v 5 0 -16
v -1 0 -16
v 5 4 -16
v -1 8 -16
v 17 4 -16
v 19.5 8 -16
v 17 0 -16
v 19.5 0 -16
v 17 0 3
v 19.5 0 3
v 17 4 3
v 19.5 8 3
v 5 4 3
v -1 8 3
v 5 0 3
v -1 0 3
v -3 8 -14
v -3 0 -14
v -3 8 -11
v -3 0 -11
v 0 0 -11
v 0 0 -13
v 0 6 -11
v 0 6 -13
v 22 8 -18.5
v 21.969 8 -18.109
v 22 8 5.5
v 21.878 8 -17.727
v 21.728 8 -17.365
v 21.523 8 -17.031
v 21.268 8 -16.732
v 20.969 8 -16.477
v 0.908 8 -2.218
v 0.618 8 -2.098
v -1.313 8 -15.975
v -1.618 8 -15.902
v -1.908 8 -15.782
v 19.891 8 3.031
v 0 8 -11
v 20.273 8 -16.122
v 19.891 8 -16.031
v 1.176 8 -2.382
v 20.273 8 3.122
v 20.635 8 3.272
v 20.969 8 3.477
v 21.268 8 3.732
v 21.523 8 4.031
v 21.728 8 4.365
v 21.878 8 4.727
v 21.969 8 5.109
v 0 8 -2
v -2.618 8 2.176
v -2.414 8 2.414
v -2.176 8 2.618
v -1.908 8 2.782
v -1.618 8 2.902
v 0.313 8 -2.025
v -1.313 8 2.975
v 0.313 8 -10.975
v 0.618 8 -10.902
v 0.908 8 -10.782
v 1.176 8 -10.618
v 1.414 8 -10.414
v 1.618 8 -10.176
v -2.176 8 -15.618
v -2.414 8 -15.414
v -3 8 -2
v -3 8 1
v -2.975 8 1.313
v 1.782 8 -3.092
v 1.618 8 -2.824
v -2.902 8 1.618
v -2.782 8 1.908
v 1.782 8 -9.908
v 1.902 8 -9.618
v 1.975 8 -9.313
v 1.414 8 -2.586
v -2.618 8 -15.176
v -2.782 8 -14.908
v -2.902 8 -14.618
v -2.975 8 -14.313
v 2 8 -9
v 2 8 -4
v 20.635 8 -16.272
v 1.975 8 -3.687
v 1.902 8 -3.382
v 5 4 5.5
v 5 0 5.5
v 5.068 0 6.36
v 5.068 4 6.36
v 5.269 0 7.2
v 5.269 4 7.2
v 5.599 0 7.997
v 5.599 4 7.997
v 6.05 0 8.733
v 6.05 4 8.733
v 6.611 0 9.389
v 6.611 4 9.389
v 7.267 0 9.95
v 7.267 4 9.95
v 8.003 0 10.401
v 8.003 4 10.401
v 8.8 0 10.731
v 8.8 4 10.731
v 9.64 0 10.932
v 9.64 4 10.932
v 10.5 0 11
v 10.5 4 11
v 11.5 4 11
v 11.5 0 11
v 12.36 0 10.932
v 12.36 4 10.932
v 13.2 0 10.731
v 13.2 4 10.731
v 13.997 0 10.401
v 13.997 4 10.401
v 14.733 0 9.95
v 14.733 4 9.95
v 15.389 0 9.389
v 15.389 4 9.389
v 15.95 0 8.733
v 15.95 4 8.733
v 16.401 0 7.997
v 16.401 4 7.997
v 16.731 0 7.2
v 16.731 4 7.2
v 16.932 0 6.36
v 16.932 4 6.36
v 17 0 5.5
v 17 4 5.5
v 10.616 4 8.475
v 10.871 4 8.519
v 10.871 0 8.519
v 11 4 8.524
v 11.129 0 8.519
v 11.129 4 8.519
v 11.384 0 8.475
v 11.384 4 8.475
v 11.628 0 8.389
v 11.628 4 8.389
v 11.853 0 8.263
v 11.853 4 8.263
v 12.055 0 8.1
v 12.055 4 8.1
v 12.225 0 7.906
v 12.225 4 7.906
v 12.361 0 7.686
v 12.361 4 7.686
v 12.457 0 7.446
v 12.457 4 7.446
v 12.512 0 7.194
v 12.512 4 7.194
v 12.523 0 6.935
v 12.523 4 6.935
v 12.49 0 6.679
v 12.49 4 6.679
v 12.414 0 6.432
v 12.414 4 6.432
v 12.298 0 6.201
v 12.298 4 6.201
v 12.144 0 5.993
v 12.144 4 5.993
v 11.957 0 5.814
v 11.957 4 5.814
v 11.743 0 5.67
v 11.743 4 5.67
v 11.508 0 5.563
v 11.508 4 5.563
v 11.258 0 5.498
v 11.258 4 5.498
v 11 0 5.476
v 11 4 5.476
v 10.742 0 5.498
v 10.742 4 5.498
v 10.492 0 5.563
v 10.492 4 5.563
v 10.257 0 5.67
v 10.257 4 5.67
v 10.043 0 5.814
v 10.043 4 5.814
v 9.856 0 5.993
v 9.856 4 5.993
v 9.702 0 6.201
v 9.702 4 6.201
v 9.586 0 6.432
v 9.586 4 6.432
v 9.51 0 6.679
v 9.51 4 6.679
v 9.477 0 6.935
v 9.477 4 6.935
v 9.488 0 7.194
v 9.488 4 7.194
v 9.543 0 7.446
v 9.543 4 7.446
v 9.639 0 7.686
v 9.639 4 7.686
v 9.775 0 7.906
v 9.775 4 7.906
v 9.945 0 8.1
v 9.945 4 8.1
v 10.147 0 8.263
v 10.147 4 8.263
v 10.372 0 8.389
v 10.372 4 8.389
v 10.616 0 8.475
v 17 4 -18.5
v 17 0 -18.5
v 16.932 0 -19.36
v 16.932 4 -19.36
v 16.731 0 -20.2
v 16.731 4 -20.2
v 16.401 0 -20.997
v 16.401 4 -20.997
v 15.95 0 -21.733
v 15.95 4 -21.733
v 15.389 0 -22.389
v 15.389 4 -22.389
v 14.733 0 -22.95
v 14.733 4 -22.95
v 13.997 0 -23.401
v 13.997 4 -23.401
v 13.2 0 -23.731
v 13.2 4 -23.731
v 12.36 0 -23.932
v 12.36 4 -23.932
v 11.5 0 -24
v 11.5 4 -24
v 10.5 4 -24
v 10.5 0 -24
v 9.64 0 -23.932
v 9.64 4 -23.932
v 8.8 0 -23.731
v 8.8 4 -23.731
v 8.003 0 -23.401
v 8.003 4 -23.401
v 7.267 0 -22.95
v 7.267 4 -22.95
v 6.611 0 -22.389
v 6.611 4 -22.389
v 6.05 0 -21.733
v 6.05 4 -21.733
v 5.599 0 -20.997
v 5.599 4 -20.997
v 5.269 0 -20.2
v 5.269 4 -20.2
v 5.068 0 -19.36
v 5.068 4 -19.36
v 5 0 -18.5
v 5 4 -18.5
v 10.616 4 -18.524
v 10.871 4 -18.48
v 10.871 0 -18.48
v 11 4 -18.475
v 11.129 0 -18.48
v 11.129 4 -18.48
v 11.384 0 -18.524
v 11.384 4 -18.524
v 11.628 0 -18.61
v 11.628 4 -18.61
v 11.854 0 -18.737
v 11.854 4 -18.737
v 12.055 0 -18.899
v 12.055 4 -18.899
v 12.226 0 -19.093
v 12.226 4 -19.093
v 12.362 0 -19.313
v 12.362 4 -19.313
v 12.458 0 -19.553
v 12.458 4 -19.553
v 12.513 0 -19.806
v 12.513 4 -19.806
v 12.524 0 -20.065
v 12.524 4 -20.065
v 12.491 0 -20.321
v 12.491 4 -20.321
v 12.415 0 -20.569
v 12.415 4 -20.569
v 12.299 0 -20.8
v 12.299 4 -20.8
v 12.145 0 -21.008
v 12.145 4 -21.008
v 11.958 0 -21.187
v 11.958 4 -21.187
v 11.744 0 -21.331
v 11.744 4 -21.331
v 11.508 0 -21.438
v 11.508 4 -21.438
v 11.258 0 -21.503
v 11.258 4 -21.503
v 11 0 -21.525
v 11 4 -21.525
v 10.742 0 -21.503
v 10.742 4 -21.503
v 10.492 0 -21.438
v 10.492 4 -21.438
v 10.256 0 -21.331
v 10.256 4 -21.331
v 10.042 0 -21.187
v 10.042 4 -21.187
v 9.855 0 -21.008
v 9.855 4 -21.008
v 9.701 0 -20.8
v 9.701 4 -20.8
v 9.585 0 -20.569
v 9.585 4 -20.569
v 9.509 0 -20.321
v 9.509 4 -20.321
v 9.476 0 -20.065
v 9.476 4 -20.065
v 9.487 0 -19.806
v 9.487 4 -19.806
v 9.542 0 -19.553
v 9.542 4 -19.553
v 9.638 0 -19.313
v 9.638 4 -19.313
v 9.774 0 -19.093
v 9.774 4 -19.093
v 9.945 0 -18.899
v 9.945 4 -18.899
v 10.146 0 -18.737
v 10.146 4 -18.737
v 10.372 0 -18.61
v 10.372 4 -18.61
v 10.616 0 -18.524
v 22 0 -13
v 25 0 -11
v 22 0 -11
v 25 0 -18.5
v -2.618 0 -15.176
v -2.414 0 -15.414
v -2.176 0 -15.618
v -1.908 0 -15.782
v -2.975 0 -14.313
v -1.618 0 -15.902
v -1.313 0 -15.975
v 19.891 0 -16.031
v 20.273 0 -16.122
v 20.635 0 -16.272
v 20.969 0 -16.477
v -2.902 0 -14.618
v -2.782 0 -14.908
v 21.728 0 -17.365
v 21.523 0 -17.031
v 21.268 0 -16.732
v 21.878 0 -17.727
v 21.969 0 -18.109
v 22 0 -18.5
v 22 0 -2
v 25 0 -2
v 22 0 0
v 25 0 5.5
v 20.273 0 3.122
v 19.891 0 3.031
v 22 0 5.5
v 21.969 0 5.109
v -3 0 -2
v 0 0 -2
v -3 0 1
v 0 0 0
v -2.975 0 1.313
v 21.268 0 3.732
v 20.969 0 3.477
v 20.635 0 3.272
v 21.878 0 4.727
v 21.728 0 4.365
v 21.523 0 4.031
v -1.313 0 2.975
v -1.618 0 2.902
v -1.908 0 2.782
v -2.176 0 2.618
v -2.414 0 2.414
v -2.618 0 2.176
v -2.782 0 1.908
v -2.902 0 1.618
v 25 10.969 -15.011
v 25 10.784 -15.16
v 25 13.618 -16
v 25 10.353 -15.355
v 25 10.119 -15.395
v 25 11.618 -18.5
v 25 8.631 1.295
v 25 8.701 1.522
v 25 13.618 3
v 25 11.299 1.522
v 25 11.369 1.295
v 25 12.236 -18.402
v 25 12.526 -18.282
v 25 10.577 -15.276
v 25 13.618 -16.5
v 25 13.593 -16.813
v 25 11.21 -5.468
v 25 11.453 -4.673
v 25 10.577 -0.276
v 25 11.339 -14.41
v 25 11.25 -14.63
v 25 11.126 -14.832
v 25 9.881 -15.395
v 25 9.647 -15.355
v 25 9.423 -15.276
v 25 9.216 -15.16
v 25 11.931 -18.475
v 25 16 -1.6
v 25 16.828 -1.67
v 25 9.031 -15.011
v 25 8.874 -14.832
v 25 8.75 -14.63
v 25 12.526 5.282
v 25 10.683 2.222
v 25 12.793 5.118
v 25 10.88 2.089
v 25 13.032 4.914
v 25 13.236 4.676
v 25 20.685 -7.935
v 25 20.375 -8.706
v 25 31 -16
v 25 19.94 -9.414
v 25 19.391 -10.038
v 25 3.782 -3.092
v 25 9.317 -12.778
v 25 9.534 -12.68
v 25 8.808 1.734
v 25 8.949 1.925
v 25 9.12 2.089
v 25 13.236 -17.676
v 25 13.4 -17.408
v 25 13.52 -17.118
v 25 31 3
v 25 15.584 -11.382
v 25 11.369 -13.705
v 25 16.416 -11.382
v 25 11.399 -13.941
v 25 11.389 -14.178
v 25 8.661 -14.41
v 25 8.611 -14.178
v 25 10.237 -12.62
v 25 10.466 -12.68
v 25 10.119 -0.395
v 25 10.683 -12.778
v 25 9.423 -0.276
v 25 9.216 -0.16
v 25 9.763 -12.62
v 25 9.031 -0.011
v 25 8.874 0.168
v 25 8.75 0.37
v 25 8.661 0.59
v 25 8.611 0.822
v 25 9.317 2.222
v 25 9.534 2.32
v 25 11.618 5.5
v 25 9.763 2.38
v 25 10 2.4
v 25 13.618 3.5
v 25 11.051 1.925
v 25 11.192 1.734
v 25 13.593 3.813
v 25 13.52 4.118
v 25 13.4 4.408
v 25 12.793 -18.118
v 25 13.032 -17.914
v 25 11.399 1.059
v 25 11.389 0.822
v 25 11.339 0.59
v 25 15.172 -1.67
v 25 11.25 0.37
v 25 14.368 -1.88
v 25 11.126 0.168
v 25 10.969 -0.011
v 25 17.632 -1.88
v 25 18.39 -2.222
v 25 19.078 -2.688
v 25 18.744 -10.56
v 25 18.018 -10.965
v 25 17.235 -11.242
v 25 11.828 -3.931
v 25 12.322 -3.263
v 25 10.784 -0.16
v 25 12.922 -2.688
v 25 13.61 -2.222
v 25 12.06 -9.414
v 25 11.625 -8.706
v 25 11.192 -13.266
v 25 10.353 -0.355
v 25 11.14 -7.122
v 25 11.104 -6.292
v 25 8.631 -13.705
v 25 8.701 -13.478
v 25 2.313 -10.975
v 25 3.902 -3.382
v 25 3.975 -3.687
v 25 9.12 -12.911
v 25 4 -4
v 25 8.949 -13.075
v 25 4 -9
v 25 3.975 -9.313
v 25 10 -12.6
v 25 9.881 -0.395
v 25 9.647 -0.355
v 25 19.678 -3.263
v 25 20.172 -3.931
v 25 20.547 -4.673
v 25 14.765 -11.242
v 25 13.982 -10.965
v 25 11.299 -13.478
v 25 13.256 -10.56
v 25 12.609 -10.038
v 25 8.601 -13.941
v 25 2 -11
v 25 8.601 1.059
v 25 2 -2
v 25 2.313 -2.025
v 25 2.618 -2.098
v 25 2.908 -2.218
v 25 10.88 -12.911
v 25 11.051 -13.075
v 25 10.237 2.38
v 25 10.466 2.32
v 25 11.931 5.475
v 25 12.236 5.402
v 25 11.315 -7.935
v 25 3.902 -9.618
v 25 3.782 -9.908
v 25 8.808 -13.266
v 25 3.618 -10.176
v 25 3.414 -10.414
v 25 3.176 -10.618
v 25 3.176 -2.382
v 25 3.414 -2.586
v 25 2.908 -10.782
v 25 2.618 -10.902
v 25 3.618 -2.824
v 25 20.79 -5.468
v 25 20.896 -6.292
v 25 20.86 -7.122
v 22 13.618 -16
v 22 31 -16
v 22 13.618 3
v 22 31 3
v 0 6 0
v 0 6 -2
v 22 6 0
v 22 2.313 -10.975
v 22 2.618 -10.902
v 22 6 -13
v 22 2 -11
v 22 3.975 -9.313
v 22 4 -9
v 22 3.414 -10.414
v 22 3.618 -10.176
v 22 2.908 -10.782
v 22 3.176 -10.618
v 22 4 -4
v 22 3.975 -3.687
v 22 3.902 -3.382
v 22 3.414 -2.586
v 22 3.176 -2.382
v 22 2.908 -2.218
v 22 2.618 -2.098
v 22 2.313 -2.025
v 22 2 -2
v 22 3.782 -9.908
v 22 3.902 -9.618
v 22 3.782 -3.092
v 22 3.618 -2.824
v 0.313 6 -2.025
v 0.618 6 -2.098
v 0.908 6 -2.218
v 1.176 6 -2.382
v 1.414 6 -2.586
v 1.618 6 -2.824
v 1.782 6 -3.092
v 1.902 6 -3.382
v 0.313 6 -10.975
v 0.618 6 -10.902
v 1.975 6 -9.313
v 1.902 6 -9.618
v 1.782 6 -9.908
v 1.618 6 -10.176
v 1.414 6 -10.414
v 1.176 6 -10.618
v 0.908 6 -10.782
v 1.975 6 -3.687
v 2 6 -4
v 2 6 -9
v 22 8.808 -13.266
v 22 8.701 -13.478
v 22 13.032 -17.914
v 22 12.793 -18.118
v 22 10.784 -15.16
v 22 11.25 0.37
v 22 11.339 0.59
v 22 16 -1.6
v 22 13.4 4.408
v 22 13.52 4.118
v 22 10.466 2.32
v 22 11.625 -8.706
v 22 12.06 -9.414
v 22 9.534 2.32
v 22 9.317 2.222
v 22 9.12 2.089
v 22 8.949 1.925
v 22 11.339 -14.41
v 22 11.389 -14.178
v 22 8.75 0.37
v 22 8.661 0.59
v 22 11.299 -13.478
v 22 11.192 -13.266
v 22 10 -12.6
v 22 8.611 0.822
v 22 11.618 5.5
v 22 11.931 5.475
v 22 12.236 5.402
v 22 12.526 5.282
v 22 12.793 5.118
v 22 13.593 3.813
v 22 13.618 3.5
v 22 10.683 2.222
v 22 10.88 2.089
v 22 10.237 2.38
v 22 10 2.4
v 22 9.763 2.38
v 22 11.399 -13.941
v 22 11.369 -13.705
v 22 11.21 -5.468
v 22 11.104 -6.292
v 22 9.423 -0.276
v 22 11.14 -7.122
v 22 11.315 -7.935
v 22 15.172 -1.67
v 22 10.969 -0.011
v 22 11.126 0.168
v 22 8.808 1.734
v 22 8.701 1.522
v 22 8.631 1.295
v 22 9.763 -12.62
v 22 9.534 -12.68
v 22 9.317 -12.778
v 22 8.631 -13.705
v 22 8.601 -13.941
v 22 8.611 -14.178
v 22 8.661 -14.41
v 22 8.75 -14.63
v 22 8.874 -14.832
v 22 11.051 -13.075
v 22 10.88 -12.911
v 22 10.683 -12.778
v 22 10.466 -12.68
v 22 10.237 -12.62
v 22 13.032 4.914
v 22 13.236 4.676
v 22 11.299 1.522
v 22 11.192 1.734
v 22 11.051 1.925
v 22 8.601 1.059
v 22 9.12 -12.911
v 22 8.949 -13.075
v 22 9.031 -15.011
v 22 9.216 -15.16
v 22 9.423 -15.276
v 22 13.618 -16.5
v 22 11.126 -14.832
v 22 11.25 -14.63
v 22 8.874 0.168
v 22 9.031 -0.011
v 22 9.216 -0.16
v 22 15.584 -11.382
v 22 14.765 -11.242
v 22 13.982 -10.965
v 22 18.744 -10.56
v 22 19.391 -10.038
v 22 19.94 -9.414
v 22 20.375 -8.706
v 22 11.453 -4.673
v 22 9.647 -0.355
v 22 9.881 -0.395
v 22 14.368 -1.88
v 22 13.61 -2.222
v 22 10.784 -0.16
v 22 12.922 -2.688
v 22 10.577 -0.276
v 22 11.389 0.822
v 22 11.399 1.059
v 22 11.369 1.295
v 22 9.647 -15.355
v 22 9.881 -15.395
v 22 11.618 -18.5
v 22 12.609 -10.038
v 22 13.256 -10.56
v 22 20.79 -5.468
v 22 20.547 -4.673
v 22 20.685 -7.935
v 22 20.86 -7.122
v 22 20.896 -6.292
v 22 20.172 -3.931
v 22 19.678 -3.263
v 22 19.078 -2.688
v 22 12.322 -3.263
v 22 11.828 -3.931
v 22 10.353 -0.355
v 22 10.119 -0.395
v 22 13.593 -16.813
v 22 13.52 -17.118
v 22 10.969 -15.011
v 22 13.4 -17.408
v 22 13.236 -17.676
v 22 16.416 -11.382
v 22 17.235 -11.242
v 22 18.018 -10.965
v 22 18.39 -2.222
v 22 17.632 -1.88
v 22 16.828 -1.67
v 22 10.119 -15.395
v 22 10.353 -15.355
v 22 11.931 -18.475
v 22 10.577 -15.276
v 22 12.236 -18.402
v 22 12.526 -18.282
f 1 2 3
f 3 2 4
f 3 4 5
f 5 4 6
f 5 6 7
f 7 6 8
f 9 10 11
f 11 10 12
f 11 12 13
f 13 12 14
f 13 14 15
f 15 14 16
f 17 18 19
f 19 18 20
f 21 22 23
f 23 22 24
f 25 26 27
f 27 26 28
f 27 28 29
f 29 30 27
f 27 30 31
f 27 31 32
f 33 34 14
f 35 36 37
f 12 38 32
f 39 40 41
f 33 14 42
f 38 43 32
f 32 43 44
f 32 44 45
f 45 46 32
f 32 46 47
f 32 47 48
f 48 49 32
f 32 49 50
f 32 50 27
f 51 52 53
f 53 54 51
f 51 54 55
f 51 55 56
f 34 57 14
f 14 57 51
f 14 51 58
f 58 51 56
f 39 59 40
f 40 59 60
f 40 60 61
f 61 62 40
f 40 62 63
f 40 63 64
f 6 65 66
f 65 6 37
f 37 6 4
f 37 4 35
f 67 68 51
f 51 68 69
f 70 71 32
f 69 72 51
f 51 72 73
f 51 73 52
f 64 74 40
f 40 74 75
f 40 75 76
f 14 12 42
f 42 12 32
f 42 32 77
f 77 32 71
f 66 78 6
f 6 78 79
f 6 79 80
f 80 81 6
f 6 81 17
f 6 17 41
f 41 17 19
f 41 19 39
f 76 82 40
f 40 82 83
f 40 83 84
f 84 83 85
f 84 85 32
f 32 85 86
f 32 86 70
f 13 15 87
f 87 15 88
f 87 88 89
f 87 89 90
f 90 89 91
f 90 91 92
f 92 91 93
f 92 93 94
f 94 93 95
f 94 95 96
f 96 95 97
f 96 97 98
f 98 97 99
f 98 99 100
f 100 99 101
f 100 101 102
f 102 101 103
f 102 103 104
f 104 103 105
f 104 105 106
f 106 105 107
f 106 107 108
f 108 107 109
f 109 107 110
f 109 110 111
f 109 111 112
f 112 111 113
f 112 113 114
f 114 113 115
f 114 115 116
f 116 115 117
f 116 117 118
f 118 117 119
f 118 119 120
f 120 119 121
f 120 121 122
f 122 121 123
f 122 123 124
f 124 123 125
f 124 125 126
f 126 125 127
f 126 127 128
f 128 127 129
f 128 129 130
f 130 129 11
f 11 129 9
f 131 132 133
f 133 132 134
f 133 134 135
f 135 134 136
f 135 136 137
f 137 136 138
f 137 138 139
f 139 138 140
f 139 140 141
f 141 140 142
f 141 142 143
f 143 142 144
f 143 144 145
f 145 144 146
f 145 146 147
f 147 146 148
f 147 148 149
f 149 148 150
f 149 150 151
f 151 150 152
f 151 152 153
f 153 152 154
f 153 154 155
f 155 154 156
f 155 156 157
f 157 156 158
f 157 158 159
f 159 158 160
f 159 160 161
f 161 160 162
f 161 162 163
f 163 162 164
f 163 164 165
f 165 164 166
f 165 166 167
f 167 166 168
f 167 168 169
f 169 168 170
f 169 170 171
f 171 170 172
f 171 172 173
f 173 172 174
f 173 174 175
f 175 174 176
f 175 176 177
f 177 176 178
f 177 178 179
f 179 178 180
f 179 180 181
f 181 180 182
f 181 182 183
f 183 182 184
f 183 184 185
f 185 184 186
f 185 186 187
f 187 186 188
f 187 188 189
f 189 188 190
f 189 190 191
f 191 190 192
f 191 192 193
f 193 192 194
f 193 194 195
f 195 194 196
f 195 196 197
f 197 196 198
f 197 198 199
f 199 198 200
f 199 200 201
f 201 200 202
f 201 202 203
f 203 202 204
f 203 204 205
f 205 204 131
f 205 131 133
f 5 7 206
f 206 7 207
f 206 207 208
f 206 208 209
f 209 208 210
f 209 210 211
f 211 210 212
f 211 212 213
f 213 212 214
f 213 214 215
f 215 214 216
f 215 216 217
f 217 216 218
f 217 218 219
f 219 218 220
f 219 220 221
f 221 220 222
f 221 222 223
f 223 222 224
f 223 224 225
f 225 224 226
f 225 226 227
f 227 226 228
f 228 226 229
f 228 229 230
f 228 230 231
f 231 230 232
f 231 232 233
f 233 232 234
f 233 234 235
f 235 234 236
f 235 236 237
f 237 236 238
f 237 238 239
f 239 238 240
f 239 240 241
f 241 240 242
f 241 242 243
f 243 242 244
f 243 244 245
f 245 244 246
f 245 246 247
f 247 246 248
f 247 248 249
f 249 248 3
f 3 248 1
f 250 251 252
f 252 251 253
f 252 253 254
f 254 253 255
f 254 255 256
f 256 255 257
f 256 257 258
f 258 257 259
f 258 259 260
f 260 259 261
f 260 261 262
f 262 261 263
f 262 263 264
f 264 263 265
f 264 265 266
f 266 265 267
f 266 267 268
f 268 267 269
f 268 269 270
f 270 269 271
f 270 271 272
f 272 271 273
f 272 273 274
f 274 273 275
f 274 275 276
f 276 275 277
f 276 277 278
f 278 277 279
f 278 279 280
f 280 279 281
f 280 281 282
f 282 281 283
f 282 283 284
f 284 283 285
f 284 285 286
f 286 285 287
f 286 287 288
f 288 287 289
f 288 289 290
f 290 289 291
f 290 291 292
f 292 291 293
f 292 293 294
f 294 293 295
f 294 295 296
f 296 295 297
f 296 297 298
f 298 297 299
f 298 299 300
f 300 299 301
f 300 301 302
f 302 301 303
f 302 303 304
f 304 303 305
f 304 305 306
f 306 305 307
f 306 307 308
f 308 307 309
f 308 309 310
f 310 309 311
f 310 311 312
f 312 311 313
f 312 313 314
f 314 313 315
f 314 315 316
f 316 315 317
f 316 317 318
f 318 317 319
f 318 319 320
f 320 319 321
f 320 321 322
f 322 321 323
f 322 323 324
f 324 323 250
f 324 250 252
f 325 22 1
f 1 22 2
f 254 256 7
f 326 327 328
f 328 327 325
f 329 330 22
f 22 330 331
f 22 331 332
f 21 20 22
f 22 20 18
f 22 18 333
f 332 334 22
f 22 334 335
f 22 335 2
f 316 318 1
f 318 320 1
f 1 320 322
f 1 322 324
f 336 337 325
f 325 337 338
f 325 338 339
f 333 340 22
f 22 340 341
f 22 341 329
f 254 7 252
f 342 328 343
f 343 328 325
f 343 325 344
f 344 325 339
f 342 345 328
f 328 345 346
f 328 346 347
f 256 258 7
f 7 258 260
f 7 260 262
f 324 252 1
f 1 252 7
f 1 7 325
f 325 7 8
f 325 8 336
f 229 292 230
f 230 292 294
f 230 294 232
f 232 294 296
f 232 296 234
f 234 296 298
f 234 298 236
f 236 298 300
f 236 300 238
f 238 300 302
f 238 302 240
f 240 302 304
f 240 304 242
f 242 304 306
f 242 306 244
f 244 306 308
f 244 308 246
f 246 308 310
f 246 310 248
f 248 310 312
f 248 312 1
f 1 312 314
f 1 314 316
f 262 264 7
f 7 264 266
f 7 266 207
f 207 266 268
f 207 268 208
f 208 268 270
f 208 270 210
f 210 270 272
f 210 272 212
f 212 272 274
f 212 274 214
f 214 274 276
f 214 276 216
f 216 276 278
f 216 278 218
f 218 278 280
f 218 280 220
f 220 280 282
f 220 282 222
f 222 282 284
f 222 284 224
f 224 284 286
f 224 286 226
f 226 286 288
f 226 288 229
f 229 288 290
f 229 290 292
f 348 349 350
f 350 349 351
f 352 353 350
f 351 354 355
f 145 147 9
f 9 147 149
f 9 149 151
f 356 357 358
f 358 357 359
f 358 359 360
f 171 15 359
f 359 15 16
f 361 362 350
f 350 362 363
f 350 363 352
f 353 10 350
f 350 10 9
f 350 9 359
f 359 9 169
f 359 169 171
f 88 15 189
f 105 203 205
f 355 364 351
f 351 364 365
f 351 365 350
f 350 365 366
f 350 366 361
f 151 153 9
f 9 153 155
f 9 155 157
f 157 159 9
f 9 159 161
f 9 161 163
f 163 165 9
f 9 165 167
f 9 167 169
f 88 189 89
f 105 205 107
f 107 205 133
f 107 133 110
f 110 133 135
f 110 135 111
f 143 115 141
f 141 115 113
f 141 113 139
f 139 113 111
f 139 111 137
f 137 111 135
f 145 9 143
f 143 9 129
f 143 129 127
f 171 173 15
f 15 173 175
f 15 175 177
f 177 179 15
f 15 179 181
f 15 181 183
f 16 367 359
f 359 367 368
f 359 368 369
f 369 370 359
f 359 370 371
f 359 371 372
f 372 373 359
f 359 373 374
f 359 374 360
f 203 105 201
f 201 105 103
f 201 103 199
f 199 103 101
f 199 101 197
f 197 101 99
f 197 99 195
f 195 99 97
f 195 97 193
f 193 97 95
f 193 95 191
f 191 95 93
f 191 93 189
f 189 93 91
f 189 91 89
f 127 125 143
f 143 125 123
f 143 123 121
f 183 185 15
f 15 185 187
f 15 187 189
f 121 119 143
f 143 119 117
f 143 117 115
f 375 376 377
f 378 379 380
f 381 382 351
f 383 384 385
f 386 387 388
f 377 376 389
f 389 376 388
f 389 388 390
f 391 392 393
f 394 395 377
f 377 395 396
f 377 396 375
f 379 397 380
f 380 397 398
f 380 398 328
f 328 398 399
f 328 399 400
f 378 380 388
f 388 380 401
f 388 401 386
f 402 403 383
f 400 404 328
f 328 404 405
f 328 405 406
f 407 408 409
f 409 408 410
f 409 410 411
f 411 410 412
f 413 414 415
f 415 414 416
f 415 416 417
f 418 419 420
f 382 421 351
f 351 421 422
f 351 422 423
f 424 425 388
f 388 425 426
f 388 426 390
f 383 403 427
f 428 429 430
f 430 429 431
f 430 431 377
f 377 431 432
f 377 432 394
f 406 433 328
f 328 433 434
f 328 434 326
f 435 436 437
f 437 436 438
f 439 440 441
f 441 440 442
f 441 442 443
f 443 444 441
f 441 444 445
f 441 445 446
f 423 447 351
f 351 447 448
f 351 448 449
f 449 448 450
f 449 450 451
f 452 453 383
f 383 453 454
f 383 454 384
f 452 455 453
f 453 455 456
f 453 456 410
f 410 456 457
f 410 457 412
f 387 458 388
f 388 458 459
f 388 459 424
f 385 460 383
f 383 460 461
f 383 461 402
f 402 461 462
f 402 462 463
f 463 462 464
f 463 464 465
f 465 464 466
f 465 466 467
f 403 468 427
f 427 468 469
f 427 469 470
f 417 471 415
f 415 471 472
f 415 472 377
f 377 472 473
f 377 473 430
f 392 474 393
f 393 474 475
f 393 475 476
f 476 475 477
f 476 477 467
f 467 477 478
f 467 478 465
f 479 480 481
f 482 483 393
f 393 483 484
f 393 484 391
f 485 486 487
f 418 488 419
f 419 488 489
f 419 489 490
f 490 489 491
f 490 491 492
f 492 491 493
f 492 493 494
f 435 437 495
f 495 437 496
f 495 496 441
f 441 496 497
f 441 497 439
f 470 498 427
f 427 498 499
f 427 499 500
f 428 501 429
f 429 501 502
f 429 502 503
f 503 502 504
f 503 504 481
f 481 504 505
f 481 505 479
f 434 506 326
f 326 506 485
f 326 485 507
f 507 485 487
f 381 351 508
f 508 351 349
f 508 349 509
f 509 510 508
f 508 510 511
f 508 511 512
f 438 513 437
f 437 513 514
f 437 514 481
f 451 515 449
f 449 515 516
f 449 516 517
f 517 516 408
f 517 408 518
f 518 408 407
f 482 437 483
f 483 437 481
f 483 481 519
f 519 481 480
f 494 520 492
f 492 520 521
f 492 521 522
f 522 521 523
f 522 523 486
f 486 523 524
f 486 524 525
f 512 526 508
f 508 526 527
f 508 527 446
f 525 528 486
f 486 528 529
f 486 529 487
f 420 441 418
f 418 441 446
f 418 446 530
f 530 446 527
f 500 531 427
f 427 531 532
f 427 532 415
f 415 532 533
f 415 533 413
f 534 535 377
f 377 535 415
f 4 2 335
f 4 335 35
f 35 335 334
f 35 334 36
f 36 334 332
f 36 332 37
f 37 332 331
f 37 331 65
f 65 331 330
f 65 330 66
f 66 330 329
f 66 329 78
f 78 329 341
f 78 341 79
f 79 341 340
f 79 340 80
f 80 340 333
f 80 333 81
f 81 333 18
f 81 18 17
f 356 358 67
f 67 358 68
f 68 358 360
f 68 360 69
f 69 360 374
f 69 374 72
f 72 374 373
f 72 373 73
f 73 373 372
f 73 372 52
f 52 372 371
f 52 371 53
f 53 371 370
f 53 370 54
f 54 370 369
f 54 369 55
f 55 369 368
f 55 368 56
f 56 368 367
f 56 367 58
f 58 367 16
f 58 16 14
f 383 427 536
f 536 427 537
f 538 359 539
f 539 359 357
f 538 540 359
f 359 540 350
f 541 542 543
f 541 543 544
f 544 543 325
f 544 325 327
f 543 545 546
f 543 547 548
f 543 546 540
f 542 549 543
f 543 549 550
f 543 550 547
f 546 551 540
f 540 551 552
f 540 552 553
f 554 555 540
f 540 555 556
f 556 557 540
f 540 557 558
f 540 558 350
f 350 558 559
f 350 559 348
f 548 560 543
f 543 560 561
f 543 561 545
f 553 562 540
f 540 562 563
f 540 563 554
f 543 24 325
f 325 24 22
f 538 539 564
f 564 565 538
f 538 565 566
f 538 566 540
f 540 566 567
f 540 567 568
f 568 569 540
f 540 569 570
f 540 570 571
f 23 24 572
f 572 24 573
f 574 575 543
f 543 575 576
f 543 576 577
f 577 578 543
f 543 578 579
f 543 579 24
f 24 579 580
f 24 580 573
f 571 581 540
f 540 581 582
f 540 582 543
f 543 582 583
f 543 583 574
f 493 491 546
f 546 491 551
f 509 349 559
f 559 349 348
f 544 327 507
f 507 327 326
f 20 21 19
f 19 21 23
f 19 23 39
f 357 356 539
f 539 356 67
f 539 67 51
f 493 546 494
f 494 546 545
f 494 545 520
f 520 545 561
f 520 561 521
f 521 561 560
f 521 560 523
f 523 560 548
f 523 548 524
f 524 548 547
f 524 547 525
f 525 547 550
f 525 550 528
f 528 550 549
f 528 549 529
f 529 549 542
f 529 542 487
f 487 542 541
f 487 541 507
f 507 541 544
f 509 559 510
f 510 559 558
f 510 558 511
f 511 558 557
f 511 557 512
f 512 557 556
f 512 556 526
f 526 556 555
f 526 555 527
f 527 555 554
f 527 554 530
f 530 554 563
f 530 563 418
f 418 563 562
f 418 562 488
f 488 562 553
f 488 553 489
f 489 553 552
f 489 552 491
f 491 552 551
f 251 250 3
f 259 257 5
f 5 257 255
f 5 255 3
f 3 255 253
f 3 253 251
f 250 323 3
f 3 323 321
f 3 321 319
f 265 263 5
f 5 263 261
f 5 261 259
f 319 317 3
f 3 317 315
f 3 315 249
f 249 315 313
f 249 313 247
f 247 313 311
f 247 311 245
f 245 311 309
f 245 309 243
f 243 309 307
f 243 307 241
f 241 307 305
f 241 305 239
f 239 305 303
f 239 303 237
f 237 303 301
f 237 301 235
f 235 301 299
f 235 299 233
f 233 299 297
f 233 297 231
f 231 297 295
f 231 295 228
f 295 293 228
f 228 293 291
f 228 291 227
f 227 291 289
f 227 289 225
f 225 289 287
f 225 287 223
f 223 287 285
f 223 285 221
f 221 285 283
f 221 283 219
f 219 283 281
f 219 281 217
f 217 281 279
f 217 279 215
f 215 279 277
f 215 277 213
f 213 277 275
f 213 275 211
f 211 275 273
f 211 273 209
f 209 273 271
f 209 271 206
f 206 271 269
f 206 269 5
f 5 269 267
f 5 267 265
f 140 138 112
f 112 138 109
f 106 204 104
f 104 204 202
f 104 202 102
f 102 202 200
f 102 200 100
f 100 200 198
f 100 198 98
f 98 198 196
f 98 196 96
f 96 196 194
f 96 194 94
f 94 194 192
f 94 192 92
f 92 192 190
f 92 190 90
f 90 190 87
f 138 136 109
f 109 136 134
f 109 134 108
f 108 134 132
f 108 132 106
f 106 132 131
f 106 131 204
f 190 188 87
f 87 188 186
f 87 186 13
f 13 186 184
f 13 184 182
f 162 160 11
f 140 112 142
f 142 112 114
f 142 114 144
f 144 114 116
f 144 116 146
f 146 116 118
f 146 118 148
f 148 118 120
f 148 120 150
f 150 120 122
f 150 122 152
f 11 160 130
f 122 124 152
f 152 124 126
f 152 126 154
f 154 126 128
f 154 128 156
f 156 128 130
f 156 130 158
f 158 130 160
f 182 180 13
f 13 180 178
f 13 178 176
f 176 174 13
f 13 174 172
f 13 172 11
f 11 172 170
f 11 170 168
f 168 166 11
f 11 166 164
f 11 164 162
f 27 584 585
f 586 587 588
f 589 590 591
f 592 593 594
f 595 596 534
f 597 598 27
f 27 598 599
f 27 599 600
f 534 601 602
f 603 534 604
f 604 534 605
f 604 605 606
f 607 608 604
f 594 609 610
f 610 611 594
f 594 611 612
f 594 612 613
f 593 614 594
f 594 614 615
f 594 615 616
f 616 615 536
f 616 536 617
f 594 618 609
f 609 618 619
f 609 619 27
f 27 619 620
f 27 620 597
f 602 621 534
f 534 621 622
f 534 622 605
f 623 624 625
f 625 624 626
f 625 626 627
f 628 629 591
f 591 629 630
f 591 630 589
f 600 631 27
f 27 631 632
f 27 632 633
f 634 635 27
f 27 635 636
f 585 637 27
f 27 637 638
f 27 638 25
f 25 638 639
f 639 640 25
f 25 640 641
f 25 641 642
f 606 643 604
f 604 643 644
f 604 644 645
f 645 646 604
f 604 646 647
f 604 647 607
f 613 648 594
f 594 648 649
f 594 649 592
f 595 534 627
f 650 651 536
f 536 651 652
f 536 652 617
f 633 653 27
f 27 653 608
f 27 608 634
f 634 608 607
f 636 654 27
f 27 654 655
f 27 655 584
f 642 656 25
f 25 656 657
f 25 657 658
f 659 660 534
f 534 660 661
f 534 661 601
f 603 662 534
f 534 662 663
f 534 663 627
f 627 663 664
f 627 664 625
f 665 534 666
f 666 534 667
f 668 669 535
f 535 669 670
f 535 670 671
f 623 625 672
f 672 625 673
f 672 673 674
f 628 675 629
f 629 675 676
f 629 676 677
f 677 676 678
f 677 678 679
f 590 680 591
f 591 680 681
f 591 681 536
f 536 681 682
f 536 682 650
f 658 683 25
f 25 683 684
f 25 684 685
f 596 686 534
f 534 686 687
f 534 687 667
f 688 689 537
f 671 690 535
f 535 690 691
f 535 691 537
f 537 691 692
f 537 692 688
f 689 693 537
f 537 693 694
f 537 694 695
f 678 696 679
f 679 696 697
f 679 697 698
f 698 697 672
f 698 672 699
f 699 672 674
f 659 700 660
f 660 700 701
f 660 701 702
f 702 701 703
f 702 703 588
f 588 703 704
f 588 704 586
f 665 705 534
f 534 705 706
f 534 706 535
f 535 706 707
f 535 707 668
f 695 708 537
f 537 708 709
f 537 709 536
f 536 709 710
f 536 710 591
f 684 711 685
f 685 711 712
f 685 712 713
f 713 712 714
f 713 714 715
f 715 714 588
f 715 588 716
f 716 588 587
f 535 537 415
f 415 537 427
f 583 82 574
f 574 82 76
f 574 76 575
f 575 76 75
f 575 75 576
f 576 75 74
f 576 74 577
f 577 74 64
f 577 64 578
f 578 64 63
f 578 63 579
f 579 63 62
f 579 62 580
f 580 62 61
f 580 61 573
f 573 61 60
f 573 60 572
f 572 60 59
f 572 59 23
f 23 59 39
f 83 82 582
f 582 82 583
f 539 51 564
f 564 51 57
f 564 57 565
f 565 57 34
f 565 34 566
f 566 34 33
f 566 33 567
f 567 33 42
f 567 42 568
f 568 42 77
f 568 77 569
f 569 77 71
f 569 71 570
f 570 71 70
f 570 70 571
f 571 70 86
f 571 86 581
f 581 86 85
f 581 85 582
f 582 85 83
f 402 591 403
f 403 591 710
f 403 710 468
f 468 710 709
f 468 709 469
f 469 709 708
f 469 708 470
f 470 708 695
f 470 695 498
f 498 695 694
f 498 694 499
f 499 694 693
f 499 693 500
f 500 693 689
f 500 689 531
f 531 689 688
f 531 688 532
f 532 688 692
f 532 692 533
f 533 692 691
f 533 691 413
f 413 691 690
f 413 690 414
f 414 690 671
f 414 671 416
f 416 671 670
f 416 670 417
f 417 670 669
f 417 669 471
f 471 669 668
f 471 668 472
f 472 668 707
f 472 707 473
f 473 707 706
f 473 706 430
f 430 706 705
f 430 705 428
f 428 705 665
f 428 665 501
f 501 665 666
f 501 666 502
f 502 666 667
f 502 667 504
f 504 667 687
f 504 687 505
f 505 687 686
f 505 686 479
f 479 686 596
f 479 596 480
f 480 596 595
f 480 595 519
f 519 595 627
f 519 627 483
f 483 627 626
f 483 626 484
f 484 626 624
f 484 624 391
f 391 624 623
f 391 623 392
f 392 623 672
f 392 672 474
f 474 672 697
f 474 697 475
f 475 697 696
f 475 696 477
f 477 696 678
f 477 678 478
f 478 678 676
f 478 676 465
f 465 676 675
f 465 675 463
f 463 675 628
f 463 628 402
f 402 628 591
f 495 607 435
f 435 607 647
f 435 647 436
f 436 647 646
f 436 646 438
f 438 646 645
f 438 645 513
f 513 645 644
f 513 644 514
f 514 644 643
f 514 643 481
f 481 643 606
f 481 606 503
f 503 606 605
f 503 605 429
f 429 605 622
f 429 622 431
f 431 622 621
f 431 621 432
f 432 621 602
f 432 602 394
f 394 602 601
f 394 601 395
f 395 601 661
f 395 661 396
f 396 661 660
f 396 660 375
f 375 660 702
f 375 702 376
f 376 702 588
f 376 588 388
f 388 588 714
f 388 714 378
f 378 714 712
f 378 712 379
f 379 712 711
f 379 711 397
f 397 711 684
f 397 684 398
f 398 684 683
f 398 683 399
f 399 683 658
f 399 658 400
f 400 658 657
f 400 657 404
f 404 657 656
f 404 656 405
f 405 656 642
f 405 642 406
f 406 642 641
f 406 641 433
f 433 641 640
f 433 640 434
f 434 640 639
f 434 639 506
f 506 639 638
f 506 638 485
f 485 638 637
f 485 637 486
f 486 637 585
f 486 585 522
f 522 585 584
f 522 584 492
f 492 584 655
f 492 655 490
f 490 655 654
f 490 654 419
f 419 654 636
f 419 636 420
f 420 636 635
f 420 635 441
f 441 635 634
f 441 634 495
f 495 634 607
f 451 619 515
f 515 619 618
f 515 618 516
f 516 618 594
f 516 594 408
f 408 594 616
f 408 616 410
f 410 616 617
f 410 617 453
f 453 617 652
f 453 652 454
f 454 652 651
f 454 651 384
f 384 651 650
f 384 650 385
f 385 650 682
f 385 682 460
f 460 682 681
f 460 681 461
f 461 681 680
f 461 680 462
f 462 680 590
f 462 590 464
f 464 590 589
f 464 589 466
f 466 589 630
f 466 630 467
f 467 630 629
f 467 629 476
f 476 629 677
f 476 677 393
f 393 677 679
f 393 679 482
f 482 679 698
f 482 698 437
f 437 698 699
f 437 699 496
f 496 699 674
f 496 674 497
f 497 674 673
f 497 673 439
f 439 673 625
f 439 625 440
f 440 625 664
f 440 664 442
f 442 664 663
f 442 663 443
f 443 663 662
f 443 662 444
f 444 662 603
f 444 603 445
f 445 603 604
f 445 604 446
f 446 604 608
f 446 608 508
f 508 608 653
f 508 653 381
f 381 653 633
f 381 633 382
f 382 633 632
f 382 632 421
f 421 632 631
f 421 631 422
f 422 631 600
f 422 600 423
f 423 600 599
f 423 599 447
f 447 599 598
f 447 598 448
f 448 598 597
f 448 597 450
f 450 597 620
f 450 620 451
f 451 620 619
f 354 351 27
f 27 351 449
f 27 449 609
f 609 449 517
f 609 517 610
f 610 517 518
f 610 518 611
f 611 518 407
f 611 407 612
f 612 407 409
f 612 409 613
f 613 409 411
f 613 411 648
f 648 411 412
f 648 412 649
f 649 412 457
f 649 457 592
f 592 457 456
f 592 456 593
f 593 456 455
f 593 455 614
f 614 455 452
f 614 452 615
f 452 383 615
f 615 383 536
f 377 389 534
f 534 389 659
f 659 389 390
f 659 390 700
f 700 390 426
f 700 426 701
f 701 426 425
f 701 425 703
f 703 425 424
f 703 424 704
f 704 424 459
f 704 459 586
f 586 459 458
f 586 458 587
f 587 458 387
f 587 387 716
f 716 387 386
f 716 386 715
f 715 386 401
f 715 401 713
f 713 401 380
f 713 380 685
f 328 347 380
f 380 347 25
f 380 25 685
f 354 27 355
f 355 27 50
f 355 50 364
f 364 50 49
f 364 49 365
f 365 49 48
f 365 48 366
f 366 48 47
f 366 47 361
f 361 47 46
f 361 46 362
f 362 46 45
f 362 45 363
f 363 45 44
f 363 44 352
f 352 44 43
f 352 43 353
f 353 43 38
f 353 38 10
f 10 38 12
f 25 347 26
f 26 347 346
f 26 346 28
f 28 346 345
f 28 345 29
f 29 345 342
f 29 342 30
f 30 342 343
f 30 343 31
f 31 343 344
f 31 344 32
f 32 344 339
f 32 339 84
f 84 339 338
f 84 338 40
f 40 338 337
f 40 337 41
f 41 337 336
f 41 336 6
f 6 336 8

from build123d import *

# Parameters (mm, degrees)
SKETCH1_W           = 22
SKETCH1_H           = 13
BOSS_EXTRUDE1_DEPTH = 6
BOSS_EXTRUDE2_DEPTH = 2
BOSS_EXTRUDE3_DEPTH = 8
SKETCH4_R           = 1.525
SKETCH4_R_2         = 1.524
CUT_EXTRUDE1_DEPTH  = 36.566838488
SKETCH5_W           = 9
SKETCH5_H           = 4
CUT_EXTRUDE2_DEPTH  = 38.735924528
FILLET1_R           = 2
SKETCH6_W           = 12
SKETCH6_H           = 13.009000019
SKETCH6_W_2         = 15.838286437
CUT_EXTRUDE3_DEPTH  = 4
BOSS_EXTRUDE4_DEPTH = 23
CUT_EXTRUDE4_DEPTH  = 23
SKETCH9_R           = 4.9
CUT_EXTRUDE6_DEPTH  = 23
SKETCH10_R          = 1.4
CUT_EXTRUDE7_DEPTH  = 23
BOSS_EXTRUDE5_DEPTH = 3
FILLET2_R           = 2.5
FILLET3_R           = 2.5


with BuildPart() as part:
    # Sketch1 → Boss-Extrude1 (new body)
    with BuildSketch(Plane(origin=(0, 0, 0), x_dir=(1, 0, 0), z_dir=(0, 1, 0))):
        with BuildLine():
            Line((-1, -3), (23, -3))
            Line((23, -3), (25, -3))
            Line((25, -3), (25, -1))
            Line((25, -1), (25, 14))
            Line((25, 14), (25, 16))
            Line((25, 16), (23, 16))
            Line((23, 16), (-1, 16))
            ThreePointArc((-1, 16), (-2.414213562, 15.414213562), (-3, 14))
            Line((-3, 14), (-3, -1))
            ThreePointArc((-3, -1), (-2.414213562, -2.414213562), (-1, -3))
        make_face()
        with Locations((11, 6.5)):
            Rectangle(SKETCH1_W, SKETCH1_H, mode=Mode.SUBTRACT)
    extrude(amount=BOSS_EXTRUDE1_DEPTH)

    # Sketch2 → Boss-Extrude2 (add)
    with BuildSketch(Plane(origin=(0, 6, 0), x_dir=(1, 0, 0), z_dir=(0, 1, 0))):
        with BuildLine():
            Line((25, 14), (25, -1))
            Line((25, -1), (25, -3))
            Line((25, -3), (23, -3))
            Line((23, -3), (-1, -3))
            ThreePointArc((-1, -3), (-2.414213562, -2.414213562), (-3, -1))
            Line((-3, -1), (-3, 14))
            ThreePointArc((-3, 14), (-2.414213562, 15.414213562), (-1, 16))
            Line((-1, 16), (23, 16))
            Line((23, 16), (25, 16))
            Line((25, 16), (25, 14))
        make_face()
    extrude(amount=BOSS_EXTRUDE2_DEPTH)

    # Sketch3 → Boss-Extrude3 (add)
    with BuildSketch(Plane.XZ):
        with BuildLine():
            Line((5, 3), (17, 3))
            Line((17, 3), (17, 5.5))
            ThreePointArc((17, 5.5), (15.389087297, 9.389087297), (11.5, 11))
            Line((11.5, 11), (10.5, 11))
            ThreePointArc((10.5, 11), (6.610912703, 9.389087297), (5, 5.5))
            Line((5, 5.5), (5, 3))
        make_face()
        with BuildLine():
            Line((17, -16), (5, -16))
            Line((5, -16), (5, -18.5))
            ThreePointArc((5, -18.5), (6.610912703, -22.389087297), (10.5, -24))
            Line((10.5, -24), (11.5, -24))
            ThreePointArc((11.5, -24), (15.389087297, -22.389087297), (17, -18.5))
            Line((17, -18.5), (17, -16))
        make_face()
    extrude(amount=-BOSS_EXTRUDE3_DEPTH)

    # Sketch4 → Cut-Extrude1 (cut, through all)
    with BuildSketch(Plane(origin=(0, 0, 0), x_dir=(-1, 0, 0), z_dir=(0, -1, 0))):
        with Locations(Location((-11, 20, 0), (0, 0, 90))):
            Circle(SKETCH4_R)
        with Locations(Location((-11, -7, 0), (0, 0, 90))):
            Circle(SKETCH4_R_2)
    extrude(amount=-CUT_EXTRUDE1_DEPTH, mode=Mode.SUBTRACT)

    # Sketch5 → Cut-Extrude2 (cut, through all)
    with BuildSketch(Plane(origin=(25, 0, 0), x_dir=(0, 0, -1), z_dir=(1, 0, 0))):
        with Locations((6.5, 2)):
            Rectangle(SKETCH5_W, SKETCH5_H)
    extrude(amount=-CUT_EXTRUDE2_DEPTH, mode=Mode.SUBTRACT)

    # Fillet1
    fillet1_edges = [part.edges().sort_by_distance(p)[0] for p in [
        (-1.5, 4, -11),
        (-1.5, 4, -2),
        (23.5, 4, -11),
        (23.5, 4, -2),
    ]]
    fillet(fillet1_edges, radius=FILLET1_R)

    # Sketch6 → Cut-Extrude3 (cut)
    with BuildSketch(Plane(origin=(0, 8, 0), x_dir=(1, 0, 0), z_dir=(0, 1, 0))):
        with Locations((11, 22.504500009)):
            Rectangle(SKETCH6_W, SKETCH6_H)
        with Locations((11.149066226, -9.50450001)):
            Rectangle(SKETCH6_W_2, SKETCH6_H)
    extrude(amount=-CUT_EXTRUDE3_DEPTH, mode=Mode.SUBTRACT)

    # Sketch7 → Boss-Extrude4 (add)
    with BuildSketch(Plane(origin=(0, 8, 0), x_dir=(1, 0, 0), z_dir=(0, 1, 0))):
        Polygon((23, 16), (22, 16), (22, -3), (23, -3), (25, -3), (25, -1), (25, 14), (25, 16), align=None)
    extrude(amount=BOSS_EXTRUDE4_DEPTH)

    # Sketch8 → Cut-Extrude4 (cut)
    with BuildSketch(Plane(origin=(0, 8, 0), x_dir=(1, 0, 0), z_dir=(0, 1, 0))):
        with BuildLine():
            Line((-3, 2), (0, 2))
            ThreePointArc((0, 2), (1.414213562, 2.585786438), (2, 4))
            Line((2, 4), (2, 9))
            ThreePointArc((2, 9), (1.414213562, 10.414213562), (0, 11))
            Line((0, 11), (-3, 11))
            Line((-3, 11), (-3, 2))
        make_face()
    extrude(amount=-CUT_EXTRUDE4_DEPTH, mode=Mode.SUBTRACT)

    # Sketch9 → Cut-Extrude6 (cut)
    with BuildSketch(Plane.ZY.offset(-22)):
        with Locations((-6.5, 16)):
            Circle(SKETCH9_R)
    extrude(amount=-CUT_EXTRUDE6_DEPTH, mode=Mode.SUBTRACT)

    # Sketch10 → Cut-Extrude7 (cut)
    with BuildSketch(Plane.ZY.offset(-22)):
        with Locations((-14, 10)):
            Circle(SKETCH10_R)
        with Locations((1, 10)):
            Circle(SKETCH10_R)
    extrude(amount=-CUT_EXTRUDE7_DEPTH, mode=Mode.SUBTRACT)

    # Sketch11 → Boss-Extrude5 (add)
    with BuildSketch(Plane(origin=(25, 0, 0), x_dir=(0, 0, -1), z_dir=(1, 0, 0))):
        with BuildLine():
            Line((-3, 0), (-5.5, 0))
            Line((-5.5, 0), (-5.5, 11.617902622))
            ThreePointArc((-5.5, 11.617902622), (-4.914213562, 13.032116185), (-3.5, 13.617902622))
            Line((-3.5, 13.617902622), (-3, 13.617902622))
            Line((-3, 13.617902622), (-3, 0))
        make_face()
        with BuildLine():
            Line((16, 0), (18.5, 0))
            Line((18.5, 0), (18.5, 11.617902622))
            ThreePointArc((18.5, 11.617902622), (17.914213562, 13.032116185), (16.5, 13.617902622))
            Line((16.5, 13.617902622), (16, 13.617902622))
            Line((16, 13.617902622), (16, 0))
        make_face()
    extrude(amount=-BOSS_EXTRUDE5_DEPTH)

    # Fillet2
    fillet2_edges = [part.edges().sort_by_distance(p)[0] for p in [
        (22, 4, 3),
    ]]
    fillet(fillet2_edges, radius=FILLET2_R - 0.0001)  # a hair under: the kernel refuses the full size

    # Fillet3
    fillet3_edges = [part.edges().sort_by_distance(p)[0] for p in [
        (22, 4, -16),
    ]]
    fillet(fillet3_edges, radius=FILLET3_R - 0.0001)  # a hair under: the kernel refuses the full size


solid = part.part
